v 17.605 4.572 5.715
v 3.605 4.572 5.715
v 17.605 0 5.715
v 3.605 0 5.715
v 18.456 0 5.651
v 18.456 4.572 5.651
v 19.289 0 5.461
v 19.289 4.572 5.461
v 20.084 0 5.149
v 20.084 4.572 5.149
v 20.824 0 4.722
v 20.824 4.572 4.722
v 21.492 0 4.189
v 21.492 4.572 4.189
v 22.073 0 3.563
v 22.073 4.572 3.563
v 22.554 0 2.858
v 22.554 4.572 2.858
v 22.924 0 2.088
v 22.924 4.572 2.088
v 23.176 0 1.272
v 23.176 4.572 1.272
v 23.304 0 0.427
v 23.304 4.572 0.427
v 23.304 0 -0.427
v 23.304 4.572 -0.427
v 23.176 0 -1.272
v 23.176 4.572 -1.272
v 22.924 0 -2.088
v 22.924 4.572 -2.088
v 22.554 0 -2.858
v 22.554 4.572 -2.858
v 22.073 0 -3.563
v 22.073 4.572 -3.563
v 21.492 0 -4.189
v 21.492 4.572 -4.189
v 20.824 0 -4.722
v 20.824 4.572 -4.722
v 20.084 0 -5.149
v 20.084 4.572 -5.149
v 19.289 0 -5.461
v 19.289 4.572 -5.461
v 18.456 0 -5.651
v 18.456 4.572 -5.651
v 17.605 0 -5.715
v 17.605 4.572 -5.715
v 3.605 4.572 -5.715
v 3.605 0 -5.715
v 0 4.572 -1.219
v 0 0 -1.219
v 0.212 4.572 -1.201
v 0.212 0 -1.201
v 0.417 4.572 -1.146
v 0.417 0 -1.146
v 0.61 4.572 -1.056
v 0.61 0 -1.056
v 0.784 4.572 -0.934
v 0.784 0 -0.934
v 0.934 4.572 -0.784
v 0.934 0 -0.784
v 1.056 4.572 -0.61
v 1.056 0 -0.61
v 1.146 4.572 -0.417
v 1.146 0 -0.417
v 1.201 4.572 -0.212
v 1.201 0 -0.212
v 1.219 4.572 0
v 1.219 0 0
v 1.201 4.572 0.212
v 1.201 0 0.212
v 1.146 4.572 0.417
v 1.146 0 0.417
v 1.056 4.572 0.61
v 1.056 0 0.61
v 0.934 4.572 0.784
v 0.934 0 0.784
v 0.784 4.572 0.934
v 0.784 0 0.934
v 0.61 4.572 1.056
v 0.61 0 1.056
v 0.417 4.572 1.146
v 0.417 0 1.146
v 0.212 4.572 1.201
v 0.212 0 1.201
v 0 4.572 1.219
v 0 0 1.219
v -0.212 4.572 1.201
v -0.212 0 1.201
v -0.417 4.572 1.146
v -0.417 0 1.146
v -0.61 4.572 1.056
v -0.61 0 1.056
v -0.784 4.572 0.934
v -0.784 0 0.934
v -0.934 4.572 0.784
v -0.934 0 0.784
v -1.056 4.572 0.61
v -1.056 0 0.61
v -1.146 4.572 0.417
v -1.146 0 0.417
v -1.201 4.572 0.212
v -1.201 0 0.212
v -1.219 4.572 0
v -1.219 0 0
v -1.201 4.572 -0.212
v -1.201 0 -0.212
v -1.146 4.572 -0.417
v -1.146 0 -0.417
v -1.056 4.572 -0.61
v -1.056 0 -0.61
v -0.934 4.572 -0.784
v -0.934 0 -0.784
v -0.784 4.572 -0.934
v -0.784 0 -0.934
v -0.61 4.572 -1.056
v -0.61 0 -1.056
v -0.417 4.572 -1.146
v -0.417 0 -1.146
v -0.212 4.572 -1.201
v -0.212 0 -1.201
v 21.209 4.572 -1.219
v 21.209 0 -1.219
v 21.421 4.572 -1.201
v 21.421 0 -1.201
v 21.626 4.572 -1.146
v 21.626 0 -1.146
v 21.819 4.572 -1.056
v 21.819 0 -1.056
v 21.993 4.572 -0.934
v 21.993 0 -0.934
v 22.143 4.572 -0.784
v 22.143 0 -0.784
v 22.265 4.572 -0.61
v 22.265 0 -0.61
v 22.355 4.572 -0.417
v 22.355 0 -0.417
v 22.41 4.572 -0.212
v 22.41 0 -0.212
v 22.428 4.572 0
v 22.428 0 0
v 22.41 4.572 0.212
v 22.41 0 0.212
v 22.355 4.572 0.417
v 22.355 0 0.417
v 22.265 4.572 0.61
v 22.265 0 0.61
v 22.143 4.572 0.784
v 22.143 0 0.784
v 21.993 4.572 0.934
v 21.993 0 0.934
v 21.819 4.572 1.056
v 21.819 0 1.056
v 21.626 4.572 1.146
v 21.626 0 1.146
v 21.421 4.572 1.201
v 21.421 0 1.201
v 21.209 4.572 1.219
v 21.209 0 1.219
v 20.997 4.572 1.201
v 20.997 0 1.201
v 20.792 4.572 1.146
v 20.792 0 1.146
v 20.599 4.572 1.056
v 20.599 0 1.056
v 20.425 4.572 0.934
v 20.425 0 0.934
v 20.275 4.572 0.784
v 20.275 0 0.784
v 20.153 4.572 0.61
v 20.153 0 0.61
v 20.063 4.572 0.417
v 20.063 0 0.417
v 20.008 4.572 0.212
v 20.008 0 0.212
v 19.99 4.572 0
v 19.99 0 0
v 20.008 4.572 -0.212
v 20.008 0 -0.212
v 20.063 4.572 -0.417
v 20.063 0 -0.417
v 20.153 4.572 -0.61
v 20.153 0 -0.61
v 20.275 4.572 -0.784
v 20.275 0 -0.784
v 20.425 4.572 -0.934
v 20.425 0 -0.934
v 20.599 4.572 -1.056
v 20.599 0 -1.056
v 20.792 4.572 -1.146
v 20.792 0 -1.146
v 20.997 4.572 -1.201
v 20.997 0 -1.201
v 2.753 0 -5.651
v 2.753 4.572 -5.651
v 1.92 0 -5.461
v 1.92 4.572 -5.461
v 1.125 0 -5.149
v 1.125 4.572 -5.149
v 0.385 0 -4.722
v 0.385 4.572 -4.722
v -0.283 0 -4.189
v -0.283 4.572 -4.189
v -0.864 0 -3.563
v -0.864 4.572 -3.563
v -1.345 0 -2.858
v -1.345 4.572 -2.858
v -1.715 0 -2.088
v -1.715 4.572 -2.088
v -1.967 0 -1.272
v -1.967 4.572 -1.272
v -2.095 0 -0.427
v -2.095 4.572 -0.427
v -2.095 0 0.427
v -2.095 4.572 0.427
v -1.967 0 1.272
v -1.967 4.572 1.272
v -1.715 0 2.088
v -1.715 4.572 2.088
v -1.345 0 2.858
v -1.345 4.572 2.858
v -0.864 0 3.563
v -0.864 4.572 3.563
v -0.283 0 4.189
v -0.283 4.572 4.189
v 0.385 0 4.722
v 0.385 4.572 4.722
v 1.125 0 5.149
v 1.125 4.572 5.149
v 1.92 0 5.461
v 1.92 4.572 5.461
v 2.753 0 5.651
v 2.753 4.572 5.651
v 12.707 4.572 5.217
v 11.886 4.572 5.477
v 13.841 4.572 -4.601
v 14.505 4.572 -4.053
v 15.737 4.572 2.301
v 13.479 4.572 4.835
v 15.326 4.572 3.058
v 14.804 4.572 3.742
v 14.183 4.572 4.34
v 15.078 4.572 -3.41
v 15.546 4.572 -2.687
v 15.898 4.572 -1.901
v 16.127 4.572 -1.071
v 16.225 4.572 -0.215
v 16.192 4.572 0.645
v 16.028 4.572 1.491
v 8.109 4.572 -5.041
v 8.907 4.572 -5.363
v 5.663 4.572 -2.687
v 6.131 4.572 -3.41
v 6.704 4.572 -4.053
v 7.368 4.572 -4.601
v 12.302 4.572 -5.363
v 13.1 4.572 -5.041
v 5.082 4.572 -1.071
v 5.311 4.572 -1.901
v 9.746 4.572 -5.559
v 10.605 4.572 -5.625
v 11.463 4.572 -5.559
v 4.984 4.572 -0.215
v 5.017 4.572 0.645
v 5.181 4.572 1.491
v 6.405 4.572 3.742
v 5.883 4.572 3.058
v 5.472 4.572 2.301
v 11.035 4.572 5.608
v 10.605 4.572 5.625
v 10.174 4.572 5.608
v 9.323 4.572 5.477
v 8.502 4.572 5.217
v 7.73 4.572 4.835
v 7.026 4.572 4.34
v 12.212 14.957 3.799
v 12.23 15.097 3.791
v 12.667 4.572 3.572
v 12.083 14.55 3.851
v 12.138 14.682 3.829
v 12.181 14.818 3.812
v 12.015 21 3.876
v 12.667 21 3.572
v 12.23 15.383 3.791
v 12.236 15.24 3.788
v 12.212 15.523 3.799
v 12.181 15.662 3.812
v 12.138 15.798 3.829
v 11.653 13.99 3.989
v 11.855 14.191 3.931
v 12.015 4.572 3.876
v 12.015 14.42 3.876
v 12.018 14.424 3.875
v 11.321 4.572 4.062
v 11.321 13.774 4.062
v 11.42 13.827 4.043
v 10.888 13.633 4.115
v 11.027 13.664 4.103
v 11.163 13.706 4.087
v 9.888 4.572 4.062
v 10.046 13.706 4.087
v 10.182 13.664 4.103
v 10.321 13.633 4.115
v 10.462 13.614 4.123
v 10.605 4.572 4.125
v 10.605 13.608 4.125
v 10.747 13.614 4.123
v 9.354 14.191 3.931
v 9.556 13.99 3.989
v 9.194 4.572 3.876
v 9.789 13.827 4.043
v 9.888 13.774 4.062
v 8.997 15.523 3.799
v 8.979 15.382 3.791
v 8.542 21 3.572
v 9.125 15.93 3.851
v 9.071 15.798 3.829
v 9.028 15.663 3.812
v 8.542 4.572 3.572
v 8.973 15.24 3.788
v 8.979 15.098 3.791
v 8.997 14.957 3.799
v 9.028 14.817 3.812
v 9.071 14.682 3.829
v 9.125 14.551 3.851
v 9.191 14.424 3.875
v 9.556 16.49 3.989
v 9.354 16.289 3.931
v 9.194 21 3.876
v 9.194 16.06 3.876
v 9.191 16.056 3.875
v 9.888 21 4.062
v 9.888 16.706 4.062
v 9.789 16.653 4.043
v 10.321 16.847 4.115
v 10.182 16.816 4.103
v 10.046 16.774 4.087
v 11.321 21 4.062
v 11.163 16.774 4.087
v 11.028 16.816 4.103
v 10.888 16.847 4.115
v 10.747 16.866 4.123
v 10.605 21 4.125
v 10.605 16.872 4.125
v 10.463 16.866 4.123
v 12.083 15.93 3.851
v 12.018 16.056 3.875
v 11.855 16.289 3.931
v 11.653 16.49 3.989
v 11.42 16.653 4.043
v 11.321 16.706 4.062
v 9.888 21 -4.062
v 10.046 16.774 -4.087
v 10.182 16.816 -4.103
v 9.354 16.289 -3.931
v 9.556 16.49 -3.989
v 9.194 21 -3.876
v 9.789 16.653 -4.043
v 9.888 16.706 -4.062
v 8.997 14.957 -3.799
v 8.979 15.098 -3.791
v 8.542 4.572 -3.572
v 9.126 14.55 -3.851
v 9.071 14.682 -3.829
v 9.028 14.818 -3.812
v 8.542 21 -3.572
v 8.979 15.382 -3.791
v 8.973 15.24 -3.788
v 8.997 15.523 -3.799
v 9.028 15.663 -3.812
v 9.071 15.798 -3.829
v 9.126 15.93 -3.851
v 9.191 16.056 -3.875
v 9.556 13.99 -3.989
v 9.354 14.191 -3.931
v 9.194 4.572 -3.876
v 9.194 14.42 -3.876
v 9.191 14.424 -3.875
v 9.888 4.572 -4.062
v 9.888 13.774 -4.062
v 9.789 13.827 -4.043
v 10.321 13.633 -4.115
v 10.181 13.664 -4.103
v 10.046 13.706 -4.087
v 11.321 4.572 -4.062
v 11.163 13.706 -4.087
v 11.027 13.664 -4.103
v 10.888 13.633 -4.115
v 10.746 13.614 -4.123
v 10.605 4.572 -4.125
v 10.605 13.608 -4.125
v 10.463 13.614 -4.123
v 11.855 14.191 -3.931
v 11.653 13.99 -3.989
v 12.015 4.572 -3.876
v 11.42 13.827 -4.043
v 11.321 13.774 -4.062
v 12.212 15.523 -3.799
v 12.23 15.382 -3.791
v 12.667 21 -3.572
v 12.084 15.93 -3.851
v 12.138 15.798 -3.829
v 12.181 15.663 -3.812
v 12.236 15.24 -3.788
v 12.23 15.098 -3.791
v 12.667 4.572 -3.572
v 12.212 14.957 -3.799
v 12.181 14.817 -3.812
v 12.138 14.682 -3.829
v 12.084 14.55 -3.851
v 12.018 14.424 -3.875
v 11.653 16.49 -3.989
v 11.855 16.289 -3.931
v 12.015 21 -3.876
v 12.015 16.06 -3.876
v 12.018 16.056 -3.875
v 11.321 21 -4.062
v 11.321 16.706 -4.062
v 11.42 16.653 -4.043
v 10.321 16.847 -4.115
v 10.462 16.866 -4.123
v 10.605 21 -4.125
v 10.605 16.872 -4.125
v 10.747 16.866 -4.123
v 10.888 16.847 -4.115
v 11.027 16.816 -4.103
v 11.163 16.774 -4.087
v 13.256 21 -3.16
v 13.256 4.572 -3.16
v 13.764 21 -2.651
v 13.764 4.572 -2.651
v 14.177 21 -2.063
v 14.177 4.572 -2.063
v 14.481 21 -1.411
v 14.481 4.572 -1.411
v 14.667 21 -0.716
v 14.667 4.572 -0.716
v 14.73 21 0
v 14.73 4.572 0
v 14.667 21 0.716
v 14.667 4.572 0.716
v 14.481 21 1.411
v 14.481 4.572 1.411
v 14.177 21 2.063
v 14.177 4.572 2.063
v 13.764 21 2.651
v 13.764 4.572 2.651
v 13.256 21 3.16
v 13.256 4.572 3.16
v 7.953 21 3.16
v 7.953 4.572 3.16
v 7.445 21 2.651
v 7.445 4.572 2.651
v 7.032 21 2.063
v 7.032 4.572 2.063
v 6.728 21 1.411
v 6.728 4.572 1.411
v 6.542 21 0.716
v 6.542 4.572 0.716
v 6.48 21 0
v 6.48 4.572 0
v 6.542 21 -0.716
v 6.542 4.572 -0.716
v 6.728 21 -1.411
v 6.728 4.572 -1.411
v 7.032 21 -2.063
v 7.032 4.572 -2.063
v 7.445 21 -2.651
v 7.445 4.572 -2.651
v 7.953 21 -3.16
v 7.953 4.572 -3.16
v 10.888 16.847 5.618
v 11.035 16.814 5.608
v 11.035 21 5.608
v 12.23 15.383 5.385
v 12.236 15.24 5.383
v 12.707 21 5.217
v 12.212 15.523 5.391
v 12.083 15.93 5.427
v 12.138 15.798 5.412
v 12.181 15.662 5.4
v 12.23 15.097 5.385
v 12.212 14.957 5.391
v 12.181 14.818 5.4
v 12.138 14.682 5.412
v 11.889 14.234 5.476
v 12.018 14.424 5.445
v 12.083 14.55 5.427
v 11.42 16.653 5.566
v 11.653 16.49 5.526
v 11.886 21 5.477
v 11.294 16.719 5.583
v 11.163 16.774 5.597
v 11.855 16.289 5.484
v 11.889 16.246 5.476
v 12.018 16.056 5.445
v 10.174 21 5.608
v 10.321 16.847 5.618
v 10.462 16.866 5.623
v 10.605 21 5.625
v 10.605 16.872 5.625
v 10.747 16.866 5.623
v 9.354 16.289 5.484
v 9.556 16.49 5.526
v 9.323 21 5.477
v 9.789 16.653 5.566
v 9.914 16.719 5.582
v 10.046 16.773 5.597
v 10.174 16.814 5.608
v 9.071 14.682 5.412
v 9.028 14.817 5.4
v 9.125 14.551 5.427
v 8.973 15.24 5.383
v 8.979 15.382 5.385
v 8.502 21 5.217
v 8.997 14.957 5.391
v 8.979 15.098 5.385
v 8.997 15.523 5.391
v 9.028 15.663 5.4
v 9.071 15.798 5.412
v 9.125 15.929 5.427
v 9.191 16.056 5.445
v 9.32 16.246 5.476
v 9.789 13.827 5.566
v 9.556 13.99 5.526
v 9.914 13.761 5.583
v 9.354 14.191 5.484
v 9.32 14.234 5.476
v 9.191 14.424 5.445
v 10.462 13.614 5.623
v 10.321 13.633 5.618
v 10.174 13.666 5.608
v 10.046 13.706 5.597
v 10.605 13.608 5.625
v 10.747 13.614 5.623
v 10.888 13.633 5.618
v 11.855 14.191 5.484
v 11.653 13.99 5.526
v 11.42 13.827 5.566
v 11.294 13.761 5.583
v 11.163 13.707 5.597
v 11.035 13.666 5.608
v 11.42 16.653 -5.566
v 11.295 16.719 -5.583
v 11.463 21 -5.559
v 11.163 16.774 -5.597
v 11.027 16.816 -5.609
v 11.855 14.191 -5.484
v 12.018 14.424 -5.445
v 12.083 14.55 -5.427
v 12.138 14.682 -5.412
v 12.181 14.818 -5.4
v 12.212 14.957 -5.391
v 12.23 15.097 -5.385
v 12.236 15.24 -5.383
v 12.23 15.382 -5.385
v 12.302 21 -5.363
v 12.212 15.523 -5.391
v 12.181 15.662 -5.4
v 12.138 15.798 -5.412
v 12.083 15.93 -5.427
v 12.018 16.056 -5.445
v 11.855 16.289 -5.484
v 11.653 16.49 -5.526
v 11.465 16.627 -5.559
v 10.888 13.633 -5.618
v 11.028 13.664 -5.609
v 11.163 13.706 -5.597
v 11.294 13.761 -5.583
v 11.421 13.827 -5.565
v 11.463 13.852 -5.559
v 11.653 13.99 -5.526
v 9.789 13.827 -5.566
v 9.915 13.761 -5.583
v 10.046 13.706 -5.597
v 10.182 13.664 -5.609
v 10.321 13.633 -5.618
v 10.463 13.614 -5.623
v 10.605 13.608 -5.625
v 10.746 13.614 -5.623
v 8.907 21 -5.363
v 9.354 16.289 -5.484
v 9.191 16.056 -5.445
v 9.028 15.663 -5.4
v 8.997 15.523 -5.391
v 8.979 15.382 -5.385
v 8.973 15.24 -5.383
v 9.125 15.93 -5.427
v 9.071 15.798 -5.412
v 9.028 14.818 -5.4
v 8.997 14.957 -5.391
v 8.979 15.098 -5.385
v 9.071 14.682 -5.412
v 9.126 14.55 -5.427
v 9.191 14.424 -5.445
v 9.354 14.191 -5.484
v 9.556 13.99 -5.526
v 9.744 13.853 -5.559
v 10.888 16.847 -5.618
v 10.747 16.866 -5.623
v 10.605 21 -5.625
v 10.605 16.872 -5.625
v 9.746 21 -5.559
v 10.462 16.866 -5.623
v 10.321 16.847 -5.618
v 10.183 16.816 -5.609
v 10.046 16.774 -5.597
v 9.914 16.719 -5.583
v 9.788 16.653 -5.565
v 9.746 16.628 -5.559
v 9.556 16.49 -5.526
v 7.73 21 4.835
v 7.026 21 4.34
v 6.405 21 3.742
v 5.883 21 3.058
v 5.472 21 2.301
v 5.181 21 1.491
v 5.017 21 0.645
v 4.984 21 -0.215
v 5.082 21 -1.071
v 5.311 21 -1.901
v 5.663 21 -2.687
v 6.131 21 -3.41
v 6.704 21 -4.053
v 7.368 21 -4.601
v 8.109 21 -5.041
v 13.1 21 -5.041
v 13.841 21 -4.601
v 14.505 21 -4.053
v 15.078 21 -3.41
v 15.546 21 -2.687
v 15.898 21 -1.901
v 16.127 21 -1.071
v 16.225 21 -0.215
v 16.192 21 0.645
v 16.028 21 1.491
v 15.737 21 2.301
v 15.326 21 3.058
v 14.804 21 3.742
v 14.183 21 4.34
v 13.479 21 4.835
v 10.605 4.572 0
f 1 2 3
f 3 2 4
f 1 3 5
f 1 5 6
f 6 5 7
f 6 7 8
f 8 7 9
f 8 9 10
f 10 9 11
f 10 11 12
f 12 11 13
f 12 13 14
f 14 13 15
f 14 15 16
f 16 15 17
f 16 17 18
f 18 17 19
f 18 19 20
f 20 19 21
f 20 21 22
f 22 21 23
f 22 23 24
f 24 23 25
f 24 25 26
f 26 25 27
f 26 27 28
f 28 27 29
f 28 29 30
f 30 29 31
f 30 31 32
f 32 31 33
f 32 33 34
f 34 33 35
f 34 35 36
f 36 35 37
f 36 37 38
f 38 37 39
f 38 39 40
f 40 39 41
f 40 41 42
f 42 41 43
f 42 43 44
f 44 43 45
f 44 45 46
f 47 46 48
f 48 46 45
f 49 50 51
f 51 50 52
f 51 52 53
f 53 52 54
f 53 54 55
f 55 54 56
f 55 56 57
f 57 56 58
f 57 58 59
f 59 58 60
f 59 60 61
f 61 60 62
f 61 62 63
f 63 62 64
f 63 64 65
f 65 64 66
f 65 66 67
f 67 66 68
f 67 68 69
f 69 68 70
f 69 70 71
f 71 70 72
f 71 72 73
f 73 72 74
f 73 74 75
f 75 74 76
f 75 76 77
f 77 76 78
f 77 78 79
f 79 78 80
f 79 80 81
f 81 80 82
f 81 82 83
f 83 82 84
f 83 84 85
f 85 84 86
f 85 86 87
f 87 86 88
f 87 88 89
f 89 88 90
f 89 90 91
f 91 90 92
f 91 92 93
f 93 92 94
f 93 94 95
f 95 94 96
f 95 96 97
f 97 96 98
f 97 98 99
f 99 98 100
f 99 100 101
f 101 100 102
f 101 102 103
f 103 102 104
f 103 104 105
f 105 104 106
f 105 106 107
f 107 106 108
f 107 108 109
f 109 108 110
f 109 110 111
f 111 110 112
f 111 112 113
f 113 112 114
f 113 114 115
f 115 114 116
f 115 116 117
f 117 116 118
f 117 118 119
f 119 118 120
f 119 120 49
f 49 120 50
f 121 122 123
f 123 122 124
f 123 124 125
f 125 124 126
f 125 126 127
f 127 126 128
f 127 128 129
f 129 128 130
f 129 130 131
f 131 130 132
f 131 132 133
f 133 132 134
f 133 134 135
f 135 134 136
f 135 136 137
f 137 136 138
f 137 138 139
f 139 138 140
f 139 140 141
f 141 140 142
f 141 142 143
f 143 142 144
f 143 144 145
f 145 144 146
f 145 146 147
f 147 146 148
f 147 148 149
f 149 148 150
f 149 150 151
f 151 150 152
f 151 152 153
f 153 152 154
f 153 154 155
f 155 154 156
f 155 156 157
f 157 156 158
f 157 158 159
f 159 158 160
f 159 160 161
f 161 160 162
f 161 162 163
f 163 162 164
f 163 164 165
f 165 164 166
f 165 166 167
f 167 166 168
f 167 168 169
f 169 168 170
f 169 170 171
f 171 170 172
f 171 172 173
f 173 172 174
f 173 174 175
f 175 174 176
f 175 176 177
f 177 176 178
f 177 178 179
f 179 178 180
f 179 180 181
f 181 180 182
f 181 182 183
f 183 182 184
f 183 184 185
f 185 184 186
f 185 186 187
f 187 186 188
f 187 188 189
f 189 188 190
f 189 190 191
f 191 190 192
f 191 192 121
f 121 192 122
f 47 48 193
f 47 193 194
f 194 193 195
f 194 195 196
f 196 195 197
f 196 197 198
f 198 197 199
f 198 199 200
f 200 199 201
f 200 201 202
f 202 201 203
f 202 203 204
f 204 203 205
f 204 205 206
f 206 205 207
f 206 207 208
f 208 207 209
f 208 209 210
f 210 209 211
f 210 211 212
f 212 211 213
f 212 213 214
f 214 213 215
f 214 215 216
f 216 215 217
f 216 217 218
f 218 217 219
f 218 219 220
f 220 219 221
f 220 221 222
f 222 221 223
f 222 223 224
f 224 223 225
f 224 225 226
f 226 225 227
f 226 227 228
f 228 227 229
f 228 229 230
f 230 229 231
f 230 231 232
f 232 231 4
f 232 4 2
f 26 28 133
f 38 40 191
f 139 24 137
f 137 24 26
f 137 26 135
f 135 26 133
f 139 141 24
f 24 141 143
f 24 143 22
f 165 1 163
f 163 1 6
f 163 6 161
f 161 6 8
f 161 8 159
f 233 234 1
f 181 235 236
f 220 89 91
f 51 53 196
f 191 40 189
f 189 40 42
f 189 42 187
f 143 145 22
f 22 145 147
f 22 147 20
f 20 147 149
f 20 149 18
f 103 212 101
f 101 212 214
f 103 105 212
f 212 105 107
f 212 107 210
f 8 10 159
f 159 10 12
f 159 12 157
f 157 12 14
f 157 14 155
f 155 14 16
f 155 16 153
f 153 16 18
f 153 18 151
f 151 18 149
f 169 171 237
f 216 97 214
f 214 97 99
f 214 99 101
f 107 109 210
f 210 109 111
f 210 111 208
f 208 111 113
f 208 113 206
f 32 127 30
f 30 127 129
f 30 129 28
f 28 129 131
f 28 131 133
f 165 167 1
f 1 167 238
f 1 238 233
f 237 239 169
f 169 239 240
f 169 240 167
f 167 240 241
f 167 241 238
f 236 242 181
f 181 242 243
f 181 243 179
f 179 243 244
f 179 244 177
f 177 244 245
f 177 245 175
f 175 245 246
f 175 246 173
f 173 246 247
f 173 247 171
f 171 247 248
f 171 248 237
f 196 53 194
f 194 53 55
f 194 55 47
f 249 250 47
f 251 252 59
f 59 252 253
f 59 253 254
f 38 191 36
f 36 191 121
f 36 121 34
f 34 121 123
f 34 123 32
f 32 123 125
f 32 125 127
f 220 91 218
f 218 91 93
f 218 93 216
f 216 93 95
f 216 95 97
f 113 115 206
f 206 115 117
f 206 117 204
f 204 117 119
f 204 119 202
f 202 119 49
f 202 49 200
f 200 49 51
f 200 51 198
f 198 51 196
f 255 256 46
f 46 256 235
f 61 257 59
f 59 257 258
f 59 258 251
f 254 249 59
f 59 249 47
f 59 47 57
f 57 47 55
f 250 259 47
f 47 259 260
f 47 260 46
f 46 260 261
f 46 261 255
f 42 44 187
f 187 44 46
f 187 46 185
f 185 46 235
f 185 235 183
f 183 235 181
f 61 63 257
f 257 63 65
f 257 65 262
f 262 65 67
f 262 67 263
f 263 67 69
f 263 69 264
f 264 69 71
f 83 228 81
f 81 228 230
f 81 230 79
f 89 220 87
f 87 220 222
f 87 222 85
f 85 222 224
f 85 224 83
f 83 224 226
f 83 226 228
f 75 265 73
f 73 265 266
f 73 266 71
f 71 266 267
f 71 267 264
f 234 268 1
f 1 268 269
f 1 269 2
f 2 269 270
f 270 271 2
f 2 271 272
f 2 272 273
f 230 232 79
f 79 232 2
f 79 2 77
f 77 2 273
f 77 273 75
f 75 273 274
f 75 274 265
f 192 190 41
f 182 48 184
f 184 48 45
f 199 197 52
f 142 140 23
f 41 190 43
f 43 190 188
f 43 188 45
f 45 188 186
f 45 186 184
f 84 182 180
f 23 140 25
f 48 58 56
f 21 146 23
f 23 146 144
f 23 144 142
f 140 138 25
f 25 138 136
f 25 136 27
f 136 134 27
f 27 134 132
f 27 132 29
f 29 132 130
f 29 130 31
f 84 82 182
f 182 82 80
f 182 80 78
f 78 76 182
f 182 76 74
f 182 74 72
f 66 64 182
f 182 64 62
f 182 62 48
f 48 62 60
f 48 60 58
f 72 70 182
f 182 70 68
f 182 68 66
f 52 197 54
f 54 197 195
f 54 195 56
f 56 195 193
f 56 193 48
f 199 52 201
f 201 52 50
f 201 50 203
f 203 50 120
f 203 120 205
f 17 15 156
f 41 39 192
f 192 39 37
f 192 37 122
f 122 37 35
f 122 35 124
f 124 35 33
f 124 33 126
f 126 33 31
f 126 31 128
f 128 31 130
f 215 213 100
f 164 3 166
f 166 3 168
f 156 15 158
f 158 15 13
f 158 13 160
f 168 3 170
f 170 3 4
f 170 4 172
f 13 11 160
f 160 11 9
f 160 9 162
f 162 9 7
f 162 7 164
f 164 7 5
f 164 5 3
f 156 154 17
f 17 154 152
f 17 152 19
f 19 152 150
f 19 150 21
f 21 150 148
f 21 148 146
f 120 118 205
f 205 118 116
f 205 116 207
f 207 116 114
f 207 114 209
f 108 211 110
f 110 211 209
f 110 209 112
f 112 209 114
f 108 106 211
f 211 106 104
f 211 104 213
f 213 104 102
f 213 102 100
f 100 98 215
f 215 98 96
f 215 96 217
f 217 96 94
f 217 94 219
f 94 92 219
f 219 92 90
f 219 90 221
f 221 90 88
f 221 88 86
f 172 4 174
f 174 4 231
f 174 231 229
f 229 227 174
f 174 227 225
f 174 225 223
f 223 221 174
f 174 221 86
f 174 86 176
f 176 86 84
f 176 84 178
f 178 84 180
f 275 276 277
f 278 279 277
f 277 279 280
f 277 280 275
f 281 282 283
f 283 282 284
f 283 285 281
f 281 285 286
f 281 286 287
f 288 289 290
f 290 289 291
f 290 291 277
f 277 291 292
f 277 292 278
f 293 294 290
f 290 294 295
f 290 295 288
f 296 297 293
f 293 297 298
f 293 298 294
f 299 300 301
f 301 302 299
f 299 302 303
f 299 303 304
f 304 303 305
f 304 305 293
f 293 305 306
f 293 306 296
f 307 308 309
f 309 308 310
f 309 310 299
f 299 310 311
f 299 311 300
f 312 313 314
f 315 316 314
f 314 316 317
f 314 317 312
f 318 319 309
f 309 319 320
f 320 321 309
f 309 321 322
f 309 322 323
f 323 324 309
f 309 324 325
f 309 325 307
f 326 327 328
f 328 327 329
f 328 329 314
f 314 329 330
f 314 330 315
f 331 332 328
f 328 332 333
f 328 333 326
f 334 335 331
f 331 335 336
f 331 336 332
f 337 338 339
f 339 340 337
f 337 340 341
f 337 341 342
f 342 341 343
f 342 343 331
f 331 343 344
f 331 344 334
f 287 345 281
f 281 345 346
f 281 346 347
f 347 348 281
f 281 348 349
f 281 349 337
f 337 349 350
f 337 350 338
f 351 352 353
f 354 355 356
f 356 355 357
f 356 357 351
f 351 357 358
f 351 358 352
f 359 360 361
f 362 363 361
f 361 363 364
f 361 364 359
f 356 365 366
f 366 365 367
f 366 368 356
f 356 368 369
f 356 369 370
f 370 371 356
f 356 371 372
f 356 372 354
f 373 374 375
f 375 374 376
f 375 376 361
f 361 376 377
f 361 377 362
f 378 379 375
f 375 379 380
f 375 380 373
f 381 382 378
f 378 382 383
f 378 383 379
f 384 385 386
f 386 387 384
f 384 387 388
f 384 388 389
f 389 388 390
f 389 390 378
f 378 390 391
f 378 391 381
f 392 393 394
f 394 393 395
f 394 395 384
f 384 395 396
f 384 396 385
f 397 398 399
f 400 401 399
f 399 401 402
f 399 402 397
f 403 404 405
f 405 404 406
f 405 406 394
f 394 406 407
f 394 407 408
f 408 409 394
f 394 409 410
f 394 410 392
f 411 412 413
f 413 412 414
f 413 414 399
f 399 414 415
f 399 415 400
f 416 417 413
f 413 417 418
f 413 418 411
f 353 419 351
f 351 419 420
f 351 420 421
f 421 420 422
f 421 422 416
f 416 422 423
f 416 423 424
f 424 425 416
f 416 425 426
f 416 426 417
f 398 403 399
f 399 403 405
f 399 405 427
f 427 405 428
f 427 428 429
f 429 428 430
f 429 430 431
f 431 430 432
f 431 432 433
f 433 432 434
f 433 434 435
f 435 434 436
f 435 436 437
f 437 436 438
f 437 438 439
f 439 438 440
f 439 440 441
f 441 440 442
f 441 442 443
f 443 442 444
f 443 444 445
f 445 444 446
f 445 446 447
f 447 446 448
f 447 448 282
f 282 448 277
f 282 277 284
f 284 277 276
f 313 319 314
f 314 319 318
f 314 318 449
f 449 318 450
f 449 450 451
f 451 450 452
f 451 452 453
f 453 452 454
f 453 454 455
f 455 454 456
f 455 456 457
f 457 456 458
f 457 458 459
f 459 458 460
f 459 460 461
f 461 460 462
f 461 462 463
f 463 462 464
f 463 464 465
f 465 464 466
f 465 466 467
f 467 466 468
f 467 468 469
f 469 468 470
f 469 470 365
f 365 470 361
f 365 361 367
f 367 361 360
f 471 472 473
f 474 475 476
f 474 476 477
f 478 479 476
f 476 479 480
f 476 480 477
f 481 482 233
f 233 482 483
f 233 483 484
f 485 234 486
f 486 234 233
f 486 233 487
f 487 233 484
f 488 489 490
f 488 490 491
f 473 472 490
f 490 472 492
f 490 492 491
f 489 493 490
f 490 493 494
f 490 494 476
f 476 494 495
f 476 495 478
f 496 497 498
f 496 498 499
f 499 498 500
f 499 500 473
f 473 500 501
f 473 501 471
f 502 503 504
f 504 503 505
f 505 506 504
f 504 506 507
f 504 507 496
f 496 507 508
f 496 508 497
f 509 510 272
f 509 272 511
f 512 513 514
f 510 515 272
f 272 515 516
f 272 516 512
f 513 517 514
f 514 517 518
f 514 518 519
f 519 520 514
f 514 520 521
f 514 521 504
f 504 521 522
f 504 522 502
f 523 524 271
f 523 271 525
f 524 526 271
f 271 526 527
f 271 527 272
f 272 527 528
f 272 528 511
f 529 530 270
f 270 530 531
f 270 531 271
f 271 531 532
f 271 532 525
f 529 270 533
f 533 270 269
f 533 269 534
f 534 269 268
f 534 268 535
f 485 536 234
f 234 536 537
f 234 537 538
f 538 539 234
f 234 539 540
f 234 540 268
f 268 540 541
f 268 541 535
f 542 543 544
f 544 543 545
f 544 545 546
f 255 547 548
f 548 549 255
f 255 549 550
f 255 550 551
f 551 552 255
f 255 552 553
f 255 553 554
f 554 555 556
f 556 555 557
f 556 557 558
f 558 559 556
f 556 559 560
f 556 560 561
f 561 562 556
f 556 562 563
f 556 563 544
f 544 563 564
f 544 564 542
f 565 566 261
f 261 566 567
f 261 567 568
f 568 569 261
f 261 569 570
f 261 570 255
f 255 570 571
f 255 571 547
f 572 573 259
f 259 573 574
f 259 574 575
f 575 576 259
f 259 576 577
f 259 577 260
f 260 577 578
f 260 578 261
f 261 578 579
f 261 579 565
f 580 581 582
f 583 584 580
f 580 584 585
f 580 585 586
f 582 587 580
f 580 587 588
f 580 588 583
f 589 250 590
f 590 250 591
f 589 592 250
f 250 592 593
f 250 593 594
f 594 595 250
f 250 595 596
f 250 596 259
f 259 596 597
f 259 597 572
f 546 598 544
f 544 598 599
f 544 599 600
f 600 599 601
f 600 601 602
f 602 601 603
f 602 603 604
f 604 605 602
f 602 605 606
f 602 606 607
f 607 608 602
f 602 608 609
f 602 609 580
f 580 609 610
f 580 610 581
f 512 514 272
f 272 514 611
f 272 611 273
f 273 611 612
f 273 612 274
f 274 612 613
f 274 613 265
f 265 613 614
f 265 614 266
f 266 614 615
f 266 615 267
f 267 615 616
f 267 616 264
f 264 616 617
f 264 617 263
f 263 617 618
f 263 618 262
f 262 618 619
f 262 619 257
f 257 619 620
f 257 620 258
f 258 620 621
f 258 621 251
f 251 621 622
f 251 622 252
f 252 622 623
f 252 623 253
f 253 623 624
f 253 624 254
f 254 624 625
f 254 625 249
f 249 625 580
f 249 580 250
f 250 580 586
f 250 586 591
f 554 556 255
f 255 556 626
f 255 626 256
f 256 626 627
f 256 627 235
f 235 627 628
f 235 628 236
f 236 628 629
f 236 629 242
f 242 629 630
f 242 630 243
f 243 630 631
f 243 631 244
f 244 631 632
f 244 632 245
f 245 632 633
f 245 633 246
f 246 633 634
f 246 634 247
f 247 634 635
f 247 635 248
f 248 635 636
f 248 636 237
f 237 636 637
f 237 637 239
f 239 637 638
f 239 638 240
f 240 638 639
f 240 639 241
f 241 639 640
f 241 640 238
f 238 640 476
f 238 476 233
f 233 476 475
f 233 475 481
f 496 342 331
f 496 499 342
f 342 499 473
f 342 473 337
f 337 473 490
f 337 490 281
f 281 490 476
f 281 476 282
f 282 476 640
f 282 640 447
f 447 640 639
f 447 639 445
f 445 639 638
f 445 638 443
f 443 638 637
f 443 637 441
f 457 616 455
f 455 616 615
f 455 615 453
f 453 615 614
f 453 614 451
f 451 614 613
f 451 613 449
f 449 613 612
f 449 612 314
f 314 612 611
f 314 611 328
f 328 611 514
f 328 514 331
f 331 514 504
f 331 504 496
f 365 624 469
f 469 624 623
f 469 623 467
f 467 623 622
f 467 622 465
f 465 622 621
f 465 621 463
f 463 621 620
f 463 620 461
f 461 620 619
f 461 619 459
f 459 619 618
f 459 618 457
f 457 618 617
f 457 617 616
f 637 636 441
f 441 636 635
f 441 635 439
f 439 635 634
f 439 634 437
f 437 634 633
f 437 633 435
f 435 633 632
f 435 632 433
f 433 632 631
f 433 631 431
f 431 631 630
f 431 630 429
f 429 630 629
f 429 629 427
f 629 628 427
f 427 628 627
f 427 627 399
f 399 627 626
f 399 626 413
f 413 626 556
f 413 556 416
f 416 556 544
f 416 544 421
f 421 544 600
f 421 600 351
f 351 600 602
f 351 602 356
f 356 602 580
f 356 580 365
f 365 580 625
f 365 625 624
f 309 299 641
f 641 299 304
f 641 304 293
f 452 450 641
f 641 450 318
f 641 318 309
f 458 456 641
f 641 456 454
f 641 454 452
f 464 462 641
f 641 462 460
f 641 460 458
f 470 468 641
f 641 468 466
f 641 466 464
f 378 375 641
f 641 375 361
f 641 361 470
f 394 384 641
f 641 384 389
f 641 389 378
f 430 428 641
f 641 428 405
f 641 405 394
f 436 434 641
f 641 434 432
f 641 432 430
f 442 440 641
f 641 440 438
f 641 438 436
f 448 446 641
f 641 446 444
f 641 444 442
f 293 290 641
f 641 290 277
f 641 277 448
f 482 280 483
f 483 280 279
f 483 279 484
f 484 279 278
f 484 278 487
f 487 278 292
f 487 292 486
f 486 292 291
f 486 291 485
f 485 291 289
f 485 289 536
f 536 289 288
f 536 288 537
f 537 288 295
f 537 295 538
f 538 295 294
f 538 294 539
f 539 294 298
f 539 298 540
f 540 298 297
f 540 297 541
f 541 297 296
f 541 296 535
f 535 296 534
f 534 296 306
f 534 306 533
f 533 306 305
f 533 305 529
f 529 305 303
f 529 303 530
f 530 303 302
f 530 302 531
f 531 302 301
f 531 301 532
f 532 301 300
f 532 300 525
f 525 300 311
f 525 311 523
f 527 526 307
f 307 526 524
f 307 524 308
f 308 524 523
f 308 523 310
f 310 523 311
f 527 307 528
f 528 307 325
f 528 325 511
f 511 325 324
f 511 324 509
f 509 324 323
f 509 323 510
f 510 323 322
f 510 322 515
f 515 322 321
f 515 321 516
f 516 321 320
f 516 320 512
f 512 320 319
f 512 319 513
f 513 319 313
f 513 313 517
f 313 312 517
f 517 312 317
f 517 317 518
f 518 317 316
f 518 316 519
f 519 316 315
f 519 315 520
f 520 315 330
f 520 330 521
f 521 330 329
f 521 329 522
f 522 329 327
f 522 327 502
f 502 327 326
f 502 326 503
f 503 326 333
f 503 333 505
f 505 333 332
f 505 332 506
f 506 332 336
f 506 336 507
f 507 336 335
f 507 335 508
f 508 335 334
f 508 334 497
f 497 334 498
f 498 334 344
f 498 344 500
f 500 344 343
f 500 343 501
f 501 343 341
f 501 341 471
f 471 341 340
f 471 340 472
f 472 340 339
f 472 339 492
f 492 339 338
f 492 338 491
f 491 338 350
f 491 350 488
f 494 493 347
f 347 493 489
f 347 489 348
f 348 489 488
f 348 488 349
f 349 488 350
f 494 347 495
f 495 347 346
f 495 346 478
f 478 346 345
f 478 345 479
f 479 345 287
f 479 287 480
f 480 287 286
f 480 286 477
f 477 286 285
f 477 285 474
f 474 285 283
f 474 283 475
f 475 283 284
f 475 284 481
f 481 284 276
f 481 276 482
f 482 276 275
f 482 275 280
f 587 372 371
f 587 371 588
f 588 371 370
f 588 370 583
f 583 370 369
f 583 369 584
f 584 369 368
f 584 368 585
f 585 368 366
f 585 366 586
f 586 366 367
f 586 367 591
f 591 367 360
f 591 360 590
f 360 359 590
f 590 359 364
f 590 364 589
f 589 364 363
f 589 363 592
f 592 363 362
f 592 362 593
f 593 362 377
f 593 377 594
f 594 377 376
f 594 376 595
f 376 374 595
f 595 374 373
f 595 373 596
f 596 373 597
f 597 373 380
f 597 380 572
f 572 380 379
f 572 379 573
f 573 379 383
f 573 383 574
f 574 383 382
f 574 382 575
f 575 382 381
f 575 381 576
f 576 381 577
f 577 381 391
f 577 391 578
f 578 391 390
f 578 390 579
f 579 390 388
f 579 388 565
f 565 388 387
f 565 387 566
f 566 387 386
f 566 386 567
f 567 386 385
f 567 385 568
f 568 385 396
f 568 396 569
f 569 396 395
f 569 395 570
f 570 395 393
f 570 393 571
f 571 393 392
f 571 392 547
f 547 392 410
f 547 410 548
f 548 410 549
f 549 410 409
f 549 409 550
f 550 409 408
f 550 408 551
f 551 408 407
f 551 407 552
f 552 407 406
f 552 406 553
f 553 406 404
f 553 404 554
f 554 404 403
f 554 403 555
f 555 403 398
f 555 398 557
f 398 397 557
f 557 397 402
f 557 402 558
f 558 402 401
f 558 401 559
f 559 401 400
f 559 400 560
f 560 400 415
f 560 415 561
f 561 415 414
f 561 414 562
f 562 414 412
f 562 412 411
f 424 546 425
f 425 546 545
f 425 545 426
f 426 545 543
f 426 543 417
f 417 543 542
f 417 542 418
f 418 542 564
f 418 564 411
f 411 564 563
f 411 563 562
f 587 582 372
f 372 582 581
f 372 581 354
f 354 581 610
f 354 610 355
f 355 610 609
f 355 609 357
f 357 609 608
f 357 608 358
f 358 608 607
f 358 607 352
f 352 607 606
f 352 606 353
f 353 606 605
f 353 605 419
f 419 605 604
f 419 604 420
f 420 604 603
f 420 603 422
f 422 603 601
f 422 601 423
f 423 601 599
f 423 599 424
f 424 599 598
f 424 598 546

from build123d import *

# Parameters (mm, degrees)
SKETCH1_R               = 1.2192
BOSS_EXTRUDE1_DEPTH     = 4.572
SKETCH1_3_R             = 5.625
SKETCH1_3_R_2           = 4.125
BOSS_EXTRUDE2_DEPTH     = 21
CUT_EXTRUDE1_DEPTH      = 18.923
CUT_EXTRUDE1_DEPTH_BACK = 18.923
SKETCH2_R               = 1.63195


with BuildPart() as part:
    # Sketch1 → Boss-Extrude1 (new body)
    with BuildSketch(Plane(origin=(0, 0, 0), x_dir=(1, 0, 0), z_dir=(0, 1, 0))):
        with BuildLine():
            Line((17.6045, 5.715), (3.6045, 5.715))
            ThreePointArc((3.6045, 5.715), (-2.1105, 0), (3.6045, -5.715))
            Line((3.6045, -5.715), (17.6045, -5.715))
            ThreePointArc((17.6045, -5.715), (23.3195, 0), (17.6045, 5.715))
        make_face()
        Circle(SKETCH1_R, mode=Mode.SUBTRACT)
        with Locations((21.209, 0)):
            Circle(SKETCH1_R, mode=Mode.SUBTRACT)
    extrude(amount=BOSS_EXTRUDE1_DEPTH)

    # Sketch1<3> → Boss-Extrude2 (add)
    with BuildSketch(Plane(origin=(0, 0, 0), x_dir=(1, 0, 0), z_dir=(0, 1, 0))):
        with Locations((10.6045, 0)):
            Circle(SKETCH1_3_R)
        with Locations((10.6045, 0)):
            Circle(SKETCH1_3_R_2, mode=Mode.SUBTRACT)
    extrude(amount=BOSS_EXTRUDE2_DEPTH)

    # Sketch2 → Cut-Extrude1 (cut, two sides: drawn at the far end of the back side and taken through both)
    with BuildSketch(Plane.XY.offset(-CUT_EXTRUDE1_DEPTH_BACK)):
        with Locations((10.6045, 15.24)):
            Circle(SKETCH2_R)
    extrude(amount=CUT_EXTRUDE1_DEPTH + CUT_EXTRUDE1_DEPTH_BACK, mode=Mode.SUBTRACT)


solid = part.part
